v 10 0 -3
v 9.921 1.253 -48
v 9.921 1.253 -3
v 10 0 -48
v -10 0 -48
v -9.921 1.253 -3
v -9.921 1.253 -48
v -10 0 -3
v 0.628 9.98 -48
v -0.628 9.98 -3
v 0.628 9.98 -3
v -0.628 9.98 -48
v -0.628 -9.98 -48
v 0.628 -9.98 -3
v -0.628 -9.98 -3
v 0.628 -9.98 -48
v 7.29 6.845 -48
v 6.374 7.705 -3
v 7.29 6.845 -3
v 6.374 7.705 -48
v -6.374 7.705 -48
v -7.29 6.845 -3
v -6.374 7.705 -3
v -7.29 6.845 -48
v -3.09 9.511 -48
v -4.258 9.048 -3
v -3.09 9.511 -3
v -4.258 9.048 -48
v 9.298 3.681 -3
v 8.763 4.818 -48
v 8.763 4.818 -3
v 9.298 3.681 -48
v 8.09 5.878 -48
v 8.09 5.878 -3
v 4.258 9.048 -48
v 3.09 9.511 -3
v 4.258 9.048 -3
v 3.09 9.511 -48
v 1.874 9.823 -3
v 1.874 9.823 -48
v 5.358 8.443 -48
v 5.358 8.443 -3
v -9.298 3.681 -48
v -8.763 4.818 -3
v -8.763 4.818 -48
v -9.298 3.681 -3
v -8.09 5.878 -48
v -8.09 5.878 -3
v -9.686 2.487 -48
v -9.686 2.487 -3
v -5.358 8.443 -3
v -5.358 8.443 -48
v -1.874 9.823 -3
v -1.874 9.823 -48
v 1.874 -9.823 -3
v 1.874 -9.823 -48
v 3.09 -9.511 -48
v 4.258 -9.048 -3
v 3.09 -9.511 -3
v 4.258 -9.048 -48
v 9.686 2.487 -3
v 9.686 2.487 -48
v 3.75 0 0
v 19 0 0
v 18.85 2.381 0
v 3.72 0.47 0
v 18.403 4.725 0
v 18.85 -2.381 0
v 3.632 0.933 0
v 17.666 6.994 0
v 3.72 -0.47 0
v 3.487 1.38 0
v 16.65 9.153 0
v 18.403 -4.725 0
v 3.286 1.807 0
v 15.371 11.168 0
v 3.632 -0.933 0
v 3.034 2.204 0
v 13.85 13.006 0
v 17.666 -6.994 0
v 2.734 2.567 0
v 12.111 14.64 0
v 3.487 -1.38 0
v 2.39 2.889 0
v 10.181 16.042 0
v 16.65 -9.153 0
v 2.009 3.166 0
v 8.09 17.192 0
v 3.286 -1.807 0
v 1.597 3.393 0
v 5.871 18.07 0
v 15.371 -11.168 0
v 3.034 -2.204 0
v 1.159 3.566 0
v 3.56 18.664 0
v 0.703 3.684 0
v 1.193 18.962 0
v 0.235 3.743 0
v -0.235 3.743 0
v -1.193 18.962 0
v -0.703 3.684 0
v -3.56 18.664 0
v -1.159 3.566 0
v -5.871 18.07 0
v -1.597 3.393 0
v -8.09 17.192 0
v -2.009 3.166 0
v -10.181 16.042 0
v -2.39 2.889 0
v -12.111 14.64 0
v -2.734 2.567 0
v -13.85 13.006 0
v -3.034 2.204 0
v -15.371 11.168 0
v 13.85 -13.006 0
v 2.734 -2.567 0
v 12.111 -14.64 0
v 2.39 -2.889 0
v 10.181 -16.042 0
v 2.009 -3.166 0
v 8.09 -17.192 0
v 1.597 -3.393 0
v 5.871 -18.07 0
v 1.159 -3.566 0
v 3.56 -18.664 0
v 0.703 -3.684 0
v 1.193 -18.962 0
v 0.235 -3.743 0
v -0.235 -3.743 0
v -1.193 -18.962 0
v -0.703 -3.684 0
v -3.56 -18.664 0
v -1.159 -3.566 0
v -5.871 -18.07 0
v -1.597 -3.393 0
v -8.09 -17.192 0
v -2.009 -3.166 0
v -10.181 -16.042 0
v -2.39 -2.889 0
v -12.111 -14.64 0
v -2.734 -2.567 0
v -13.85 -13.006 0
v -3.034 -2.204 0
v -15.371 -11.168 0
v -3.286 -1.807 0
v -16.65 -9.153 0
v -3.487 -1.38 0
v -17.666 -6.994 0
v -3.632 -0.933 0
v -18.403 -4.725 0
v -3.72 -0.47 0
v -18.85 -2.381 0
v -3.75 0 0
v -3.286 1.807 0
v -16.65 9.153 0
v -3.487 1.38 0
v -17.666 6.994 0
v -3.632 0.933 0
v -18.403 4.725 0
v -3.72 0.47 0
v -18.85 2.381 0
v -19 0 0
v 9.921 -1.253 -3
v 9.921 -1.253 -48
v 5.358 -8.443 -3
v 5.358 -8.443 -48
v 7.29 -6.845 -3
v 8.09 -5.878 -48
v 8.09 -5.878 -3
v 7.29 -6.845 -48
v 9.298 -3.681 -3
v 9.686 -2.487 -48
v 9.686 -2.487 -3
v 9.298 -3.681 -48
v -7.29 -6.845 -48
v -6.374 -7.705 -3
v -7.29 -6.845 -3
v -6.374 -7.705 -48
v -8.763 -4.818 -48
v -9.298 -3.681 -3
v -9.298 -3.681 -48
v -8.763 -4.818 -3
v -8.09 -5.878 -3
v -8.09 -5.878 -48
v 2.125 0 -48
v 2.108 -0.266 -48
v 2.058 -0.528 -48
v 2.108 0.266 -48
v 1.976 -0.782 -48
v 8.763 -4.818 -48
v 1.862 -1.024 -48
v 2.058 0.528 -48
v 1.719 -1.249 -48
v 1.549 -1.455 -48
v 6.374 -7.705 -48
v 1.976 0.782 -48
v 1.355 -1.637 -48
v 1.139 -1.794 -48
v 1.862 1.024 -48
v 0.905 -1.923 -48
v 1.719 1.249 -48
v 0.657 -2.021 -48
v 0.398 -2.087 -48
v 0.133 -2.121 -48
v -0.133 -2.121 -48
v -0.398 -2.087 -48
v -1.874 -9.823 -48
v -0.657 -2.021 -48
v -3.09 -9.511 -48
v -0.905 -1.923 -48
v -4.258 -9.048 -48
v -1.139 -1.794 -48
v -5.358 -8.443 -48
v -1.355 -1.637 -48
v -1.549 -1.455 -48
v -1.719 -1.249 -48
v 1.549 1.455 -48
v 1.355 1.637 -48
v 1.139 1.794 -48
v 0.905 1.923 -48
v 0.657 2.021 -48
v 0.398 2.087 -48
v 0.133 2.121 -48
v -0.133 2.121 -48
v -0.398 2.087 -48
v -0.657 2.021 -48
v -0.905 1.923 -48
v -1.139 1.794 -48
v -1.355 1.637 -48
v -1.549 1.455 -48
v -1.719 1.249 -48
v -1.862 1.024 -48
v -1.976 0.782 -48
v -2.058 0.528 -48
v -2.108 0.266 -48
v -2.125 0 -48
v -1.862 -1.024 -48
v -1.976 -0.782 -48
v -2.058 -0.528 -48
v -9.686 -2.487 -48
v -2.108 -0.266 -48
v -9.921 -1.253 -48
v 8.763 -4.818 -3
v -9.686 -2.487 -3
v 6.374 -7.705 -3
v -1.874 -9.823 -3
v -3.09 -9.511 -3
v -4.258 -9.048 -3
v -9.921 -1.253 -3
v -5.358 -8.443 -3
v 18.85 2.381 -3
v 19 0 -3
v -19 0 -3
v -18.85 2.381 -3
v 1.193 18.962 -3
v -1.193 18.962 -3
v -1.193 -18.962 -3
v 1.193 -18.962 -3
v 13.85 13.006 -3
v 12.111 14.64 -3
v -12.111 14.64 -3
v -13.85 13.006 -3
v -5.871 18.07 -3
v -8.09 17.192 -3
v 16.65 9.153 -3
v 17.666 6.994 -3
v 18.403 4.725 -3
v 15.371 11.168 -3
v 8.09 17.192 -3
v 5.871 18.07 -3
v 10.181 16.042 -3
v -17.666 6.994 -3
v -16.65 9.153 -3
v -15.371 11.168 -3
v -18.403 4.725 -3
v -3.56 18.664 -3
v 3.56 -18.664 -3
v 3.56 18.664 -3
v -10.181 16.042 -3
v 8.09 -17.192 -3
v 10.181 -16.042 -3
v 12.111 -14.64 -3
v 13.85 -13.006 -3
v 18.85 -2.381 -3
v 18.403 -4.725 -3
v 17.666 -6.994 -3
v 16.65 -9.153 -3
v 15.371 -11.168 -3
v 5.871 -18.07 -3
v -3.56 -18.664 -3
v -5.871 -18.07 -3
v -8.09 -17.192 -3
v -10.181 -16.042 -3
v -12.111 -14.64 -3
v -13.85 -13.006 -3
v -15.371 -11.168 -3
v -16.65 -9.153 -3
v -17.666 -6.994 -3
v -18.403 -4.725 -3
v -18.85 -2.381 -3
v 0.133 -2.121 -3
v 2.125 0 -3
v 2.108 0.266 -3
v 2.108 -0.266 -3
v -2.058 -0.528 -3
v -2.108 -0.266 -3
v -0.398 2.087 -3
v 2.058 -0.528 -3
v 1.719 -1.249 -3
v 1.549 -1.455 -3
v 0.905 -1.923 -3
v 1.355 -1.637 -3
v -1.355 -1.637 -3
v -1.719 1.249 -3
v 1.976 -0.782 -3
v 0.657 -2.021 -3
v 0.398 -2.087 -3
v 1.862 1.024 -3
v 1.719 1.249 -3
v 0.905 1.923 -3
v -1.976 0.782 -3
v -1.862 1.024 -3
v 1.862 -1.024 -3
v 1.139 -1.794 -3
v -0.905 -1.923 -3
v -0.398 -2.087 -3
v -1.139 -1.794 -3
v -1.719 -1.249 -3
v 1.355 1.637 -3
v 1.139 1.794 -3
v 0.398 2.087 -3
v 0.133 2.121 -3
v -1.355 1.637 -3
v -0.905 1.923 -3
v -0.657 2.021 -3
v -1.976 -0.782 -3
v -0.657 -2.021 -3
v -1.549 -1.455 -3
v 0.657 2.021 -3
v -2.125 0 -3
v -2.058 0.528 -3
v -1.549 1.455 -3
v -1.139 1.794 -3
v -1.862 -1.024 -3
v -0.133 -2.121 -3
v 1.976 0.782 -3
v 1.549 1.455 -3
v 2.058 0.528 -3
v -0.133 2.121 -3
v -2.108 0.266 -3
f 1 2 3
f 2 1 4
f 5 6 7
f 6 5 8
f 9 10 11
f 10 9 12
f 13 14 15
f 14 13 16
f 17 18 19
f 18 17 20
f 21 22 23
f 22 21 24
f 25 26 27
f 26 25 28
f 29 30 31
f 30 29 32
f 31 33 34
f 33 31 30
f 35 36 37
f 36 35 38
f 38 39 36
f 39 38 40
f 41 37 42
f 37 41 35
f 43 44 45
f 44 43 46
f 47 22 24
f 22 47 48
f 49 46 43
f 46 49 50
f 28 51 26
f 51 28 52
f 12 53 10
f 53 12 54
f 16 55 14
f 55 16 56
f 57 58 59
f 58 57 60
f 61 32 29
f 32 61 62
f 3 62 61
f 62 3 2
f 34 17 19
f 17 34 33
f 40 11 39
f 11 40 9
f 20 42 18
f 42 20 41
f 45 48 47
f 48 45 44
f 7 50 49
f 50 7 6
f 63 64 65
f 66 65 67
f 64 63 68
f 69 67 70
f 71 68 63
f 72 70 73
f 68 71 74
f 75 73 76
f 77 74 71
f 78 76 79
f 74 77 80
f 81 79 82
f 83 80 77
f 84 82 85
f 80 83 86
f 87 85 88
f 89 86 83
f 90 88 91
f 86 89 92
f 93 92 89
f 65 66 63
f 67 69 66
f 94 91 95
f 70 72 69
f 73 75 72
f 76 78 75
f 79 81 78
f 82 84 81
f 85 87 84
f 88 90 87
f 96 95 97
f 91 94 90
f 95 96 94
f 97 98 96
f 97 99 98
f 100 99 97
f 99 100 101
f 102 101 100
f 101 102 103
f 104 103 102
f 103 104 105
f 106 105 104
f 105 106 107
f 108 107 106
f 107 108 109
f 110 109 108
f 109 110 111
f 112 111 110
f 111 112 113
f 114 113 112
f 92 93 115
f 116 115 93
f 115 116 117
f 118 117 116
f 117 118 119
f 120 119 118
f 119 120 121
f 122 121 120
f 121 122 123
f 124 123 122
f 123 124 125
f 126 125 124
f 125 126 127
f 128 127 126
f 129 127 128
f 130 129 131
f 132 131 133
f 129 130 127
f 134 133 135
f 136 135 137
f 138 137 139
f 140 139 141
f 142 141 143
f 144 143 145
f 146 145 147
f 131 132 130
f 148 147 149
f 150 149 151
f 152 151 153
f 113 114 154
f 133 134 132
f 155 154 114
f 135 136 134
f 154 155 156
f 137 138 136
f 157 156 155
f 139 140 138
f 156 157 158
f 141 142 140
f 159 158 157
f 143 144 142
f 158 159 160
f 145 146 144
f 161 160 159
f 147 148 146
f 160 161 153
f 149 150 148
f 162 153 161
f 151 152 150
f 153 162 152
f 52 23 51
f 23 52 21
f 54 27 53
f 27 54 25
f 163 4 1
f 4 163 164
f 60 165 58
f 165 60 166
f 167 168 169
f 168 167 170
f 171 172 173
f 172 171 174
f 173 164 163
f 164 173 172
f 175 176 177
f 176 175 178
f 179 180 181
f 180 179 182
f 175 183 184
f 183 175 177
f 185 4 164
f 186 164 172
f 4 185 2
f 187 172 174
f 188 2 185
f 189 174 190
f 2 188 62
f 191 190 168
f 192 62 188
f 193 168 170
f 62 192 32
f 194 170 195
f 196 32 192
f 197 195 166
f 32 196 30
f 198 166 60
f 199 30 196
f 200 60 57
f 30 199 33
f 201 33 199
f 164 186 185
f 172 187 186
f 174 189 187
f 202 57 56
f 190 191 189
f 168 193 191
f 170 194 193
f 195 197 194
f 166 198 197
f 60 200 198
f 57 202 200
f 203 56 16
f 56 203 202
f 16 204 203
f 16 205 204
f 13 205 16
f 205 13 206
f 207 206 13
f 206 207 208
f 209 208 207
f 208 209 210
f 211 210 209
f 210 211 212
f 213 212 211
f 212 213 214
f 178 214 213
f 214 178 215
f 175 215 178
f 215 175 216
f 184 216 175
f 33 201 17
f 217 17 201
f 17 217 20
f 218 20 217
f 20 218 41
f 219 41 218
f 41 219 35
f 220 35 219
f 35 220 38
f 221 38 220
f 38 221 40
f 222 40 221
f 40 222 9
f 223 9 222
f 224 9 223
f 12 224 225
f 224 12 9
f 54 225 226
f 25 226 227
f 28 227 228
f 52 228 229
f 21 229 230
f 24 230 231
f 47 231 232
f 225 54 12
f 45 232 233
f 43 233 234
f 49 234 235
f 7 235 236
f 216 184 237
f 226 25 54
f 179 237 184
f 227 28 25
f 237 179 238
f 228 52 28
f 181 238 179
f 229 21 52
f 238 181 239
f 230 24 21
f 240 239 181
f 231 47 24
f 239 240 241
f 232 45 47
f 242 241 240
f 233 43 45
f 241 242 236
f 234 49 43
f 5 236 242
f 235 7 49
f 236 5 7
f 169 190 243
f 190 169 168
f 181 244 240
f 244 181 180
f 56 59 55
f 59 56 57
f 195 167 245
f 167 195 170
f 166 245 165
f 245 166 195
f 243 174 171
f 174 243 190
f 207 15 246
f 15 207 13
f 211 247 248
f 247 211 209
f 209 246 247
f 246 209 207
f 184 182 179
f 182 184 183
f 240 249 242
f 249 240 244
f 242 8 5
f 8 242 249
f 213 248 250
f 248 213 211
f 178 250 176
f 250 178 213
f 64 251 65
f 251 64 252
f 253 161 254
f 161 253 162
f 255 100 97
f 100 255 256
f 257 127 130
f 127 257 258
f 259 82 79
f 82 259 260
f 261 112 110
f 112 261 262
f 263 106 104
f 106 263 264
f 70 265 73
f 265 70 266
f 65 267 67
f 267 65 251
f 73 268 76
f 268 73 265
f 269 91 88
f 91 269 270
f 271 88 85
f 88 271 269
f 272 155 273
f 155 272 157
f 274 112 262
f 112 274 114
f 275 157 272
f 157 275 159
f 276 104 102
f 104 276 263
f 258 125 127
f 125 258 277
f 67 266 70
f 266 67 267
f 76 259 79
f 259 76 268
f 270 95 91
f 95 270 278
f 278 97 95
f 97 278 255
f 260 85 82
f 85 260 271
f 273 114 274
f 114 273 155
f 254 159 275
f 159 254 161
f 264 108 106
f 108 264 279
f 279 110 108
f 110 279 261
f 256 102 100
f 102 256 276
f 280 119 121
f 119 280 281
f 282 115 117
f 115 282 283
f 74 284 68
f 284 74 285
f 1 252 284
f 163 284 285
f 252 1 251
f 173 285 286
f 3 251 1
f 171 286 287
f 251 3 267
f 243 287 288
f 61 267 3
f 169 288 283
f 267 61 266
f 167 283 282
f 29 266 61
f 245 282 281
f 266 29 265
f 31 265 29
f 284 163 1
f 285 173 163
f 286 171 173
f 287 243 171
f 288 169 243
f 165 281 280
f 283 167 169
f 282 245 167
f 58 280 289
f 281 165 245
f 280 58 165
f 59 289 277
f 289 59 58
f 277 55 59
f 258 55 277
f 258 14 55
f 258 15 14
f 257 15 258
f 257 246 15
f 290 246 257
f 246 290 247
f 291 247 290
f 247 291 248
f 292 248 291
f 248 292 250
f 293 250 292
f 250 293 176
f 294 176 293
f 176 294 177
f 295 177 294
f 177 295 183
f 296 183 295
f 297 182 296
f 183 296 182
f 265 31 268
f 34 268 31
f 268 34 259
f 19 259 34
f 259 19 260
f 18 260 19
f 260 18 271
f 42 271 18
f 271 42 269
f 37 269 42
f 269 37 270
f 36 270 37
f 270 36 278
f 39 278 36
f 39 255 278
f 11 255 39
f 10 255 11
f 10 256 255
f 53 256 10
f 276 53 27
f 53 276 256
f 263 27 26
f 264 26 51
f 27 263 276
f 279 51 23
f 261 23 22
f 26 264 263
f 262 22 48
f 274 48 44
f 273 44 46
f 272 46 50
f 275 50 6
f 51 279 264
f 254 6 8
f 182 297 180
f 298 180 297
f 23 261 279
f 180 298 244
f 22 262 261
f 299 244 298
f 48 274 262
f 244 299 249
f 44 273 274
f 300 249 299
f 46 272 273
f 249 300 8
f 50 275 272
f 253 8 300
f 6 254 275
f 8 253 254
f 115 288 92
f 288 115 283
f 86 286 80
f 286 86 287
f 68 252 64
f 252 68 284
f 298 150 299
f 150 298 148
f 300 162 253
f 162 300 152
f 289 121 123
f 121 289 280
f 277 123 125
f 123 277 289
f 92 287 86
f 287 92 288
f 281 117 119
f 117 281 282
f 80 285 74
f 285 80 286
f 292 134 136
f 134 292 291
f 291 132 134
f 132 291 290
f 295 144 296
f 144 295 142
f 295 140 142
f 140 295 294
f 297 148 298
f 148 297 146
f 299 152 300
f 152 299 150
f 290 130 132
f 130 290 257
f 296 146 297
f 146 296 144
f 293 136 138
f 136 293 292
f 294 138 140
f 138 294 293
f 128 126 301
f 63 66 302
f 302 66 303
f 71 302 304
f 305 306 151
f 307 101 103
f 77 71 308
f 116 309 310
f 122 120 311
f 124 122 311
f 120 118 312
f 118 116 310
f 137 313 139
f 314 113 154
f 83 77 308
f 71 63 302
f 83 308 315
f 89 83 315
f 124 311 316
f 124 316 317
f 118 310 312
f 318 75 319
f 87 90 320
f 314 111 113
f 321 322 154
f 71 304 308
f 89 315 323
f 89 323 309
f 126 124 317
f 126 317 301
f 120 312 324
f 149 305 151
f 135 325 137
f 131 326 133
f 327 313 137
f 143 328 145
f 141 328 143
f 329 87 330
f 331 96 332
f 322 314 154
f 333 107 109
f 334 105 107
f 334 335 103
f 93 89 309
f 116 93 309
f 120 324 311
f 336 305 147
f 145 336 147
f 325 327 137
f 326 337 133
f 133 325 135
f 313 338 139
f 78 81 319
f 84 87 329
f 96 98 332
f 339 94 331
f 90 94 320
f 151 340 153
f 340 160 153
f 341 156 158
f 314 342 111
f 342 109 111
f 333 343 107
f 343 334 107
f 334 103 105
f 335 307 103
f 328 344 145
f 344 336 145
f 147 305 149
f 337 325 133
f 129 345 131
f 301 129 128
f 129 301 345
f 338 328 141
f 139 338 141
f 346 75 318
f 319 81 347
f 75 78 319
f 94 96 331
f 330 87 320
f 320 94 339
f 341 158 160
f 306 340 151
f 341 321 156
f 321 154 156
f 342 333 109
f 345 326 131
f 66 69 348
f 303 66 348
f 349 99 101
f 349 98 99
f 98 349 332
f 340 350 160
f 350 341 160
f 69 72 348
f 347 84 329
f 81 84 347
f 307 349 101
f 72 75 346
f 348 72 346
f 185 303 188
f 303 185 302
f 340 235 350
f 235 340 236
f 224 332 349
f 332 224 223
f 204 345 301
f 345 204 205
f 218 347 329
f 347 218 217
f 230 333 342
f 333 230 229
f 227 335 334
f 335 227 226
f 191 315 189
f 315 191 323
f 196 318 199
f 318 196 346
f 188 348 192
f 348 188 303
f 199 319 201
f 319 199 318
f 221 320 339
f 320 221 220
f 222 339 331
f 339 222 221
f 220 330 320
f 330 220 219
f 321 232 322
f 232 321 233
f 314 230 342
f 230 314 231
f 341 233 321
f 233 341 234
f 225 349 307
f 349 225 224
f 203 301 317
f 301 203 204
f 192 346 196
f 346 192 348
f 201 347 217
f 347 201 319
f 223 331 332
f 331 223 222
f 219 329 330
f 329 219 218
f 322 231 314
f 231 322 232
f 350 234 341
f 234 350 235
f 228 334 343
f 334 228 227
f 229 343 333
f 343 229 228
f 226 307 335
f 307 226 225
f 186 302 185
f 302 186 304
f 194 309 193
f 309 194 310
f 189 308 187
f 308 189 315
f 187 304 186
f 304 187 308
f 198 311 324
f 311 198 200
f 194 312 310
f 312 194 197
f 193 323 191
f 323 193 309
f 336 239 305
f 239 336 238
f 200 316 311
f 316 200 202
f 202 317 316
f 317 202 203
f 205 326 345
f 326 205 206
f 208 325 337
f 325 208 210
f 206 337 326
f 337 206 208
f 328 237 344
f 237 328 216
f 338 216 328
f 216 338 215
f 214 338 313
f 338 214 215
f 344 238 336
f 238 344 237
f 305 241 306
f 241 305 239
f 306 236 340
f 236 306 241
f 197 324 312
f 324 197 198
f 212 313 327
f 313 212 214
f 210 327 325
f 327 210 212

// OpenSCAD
$fn = 50;


difference() {
	union() {
		translate(v = [0, 0, -48.0000000000]) {
			cylinder(h = 48, r = 10.0000000000);
		}
		translate(v = [0, 0, -3.0000000000]) {
			cylinder(h = 3, r = 19.0000000000);
		}
	}
	union() {
		translate(v = [0, 0, 0]) {
			rotate(a = [0, 0, 0]) {
				difference() {
					union() {
						#translate(v = [0, 0, -48.0000000000]) {
							cylinder(h = 48, r = 2.0000000000);
						}
						#translate(v = [0, 0, -3]) {
							cylinder(h = 3, r1 = 2.1250000000, r2 = 3.7500000000);
						}
						#translate(v = [0, 0, -48.0000000000]) {
							cylinder(h = 48, r = 2.1250000000);
						}
						#translate(v = [0, 0, -48.0000000000]) {
							cylinder(h = 48, r = 2.0000000000);
						}
					}
					union();
				}
			}
		}
	}
}
